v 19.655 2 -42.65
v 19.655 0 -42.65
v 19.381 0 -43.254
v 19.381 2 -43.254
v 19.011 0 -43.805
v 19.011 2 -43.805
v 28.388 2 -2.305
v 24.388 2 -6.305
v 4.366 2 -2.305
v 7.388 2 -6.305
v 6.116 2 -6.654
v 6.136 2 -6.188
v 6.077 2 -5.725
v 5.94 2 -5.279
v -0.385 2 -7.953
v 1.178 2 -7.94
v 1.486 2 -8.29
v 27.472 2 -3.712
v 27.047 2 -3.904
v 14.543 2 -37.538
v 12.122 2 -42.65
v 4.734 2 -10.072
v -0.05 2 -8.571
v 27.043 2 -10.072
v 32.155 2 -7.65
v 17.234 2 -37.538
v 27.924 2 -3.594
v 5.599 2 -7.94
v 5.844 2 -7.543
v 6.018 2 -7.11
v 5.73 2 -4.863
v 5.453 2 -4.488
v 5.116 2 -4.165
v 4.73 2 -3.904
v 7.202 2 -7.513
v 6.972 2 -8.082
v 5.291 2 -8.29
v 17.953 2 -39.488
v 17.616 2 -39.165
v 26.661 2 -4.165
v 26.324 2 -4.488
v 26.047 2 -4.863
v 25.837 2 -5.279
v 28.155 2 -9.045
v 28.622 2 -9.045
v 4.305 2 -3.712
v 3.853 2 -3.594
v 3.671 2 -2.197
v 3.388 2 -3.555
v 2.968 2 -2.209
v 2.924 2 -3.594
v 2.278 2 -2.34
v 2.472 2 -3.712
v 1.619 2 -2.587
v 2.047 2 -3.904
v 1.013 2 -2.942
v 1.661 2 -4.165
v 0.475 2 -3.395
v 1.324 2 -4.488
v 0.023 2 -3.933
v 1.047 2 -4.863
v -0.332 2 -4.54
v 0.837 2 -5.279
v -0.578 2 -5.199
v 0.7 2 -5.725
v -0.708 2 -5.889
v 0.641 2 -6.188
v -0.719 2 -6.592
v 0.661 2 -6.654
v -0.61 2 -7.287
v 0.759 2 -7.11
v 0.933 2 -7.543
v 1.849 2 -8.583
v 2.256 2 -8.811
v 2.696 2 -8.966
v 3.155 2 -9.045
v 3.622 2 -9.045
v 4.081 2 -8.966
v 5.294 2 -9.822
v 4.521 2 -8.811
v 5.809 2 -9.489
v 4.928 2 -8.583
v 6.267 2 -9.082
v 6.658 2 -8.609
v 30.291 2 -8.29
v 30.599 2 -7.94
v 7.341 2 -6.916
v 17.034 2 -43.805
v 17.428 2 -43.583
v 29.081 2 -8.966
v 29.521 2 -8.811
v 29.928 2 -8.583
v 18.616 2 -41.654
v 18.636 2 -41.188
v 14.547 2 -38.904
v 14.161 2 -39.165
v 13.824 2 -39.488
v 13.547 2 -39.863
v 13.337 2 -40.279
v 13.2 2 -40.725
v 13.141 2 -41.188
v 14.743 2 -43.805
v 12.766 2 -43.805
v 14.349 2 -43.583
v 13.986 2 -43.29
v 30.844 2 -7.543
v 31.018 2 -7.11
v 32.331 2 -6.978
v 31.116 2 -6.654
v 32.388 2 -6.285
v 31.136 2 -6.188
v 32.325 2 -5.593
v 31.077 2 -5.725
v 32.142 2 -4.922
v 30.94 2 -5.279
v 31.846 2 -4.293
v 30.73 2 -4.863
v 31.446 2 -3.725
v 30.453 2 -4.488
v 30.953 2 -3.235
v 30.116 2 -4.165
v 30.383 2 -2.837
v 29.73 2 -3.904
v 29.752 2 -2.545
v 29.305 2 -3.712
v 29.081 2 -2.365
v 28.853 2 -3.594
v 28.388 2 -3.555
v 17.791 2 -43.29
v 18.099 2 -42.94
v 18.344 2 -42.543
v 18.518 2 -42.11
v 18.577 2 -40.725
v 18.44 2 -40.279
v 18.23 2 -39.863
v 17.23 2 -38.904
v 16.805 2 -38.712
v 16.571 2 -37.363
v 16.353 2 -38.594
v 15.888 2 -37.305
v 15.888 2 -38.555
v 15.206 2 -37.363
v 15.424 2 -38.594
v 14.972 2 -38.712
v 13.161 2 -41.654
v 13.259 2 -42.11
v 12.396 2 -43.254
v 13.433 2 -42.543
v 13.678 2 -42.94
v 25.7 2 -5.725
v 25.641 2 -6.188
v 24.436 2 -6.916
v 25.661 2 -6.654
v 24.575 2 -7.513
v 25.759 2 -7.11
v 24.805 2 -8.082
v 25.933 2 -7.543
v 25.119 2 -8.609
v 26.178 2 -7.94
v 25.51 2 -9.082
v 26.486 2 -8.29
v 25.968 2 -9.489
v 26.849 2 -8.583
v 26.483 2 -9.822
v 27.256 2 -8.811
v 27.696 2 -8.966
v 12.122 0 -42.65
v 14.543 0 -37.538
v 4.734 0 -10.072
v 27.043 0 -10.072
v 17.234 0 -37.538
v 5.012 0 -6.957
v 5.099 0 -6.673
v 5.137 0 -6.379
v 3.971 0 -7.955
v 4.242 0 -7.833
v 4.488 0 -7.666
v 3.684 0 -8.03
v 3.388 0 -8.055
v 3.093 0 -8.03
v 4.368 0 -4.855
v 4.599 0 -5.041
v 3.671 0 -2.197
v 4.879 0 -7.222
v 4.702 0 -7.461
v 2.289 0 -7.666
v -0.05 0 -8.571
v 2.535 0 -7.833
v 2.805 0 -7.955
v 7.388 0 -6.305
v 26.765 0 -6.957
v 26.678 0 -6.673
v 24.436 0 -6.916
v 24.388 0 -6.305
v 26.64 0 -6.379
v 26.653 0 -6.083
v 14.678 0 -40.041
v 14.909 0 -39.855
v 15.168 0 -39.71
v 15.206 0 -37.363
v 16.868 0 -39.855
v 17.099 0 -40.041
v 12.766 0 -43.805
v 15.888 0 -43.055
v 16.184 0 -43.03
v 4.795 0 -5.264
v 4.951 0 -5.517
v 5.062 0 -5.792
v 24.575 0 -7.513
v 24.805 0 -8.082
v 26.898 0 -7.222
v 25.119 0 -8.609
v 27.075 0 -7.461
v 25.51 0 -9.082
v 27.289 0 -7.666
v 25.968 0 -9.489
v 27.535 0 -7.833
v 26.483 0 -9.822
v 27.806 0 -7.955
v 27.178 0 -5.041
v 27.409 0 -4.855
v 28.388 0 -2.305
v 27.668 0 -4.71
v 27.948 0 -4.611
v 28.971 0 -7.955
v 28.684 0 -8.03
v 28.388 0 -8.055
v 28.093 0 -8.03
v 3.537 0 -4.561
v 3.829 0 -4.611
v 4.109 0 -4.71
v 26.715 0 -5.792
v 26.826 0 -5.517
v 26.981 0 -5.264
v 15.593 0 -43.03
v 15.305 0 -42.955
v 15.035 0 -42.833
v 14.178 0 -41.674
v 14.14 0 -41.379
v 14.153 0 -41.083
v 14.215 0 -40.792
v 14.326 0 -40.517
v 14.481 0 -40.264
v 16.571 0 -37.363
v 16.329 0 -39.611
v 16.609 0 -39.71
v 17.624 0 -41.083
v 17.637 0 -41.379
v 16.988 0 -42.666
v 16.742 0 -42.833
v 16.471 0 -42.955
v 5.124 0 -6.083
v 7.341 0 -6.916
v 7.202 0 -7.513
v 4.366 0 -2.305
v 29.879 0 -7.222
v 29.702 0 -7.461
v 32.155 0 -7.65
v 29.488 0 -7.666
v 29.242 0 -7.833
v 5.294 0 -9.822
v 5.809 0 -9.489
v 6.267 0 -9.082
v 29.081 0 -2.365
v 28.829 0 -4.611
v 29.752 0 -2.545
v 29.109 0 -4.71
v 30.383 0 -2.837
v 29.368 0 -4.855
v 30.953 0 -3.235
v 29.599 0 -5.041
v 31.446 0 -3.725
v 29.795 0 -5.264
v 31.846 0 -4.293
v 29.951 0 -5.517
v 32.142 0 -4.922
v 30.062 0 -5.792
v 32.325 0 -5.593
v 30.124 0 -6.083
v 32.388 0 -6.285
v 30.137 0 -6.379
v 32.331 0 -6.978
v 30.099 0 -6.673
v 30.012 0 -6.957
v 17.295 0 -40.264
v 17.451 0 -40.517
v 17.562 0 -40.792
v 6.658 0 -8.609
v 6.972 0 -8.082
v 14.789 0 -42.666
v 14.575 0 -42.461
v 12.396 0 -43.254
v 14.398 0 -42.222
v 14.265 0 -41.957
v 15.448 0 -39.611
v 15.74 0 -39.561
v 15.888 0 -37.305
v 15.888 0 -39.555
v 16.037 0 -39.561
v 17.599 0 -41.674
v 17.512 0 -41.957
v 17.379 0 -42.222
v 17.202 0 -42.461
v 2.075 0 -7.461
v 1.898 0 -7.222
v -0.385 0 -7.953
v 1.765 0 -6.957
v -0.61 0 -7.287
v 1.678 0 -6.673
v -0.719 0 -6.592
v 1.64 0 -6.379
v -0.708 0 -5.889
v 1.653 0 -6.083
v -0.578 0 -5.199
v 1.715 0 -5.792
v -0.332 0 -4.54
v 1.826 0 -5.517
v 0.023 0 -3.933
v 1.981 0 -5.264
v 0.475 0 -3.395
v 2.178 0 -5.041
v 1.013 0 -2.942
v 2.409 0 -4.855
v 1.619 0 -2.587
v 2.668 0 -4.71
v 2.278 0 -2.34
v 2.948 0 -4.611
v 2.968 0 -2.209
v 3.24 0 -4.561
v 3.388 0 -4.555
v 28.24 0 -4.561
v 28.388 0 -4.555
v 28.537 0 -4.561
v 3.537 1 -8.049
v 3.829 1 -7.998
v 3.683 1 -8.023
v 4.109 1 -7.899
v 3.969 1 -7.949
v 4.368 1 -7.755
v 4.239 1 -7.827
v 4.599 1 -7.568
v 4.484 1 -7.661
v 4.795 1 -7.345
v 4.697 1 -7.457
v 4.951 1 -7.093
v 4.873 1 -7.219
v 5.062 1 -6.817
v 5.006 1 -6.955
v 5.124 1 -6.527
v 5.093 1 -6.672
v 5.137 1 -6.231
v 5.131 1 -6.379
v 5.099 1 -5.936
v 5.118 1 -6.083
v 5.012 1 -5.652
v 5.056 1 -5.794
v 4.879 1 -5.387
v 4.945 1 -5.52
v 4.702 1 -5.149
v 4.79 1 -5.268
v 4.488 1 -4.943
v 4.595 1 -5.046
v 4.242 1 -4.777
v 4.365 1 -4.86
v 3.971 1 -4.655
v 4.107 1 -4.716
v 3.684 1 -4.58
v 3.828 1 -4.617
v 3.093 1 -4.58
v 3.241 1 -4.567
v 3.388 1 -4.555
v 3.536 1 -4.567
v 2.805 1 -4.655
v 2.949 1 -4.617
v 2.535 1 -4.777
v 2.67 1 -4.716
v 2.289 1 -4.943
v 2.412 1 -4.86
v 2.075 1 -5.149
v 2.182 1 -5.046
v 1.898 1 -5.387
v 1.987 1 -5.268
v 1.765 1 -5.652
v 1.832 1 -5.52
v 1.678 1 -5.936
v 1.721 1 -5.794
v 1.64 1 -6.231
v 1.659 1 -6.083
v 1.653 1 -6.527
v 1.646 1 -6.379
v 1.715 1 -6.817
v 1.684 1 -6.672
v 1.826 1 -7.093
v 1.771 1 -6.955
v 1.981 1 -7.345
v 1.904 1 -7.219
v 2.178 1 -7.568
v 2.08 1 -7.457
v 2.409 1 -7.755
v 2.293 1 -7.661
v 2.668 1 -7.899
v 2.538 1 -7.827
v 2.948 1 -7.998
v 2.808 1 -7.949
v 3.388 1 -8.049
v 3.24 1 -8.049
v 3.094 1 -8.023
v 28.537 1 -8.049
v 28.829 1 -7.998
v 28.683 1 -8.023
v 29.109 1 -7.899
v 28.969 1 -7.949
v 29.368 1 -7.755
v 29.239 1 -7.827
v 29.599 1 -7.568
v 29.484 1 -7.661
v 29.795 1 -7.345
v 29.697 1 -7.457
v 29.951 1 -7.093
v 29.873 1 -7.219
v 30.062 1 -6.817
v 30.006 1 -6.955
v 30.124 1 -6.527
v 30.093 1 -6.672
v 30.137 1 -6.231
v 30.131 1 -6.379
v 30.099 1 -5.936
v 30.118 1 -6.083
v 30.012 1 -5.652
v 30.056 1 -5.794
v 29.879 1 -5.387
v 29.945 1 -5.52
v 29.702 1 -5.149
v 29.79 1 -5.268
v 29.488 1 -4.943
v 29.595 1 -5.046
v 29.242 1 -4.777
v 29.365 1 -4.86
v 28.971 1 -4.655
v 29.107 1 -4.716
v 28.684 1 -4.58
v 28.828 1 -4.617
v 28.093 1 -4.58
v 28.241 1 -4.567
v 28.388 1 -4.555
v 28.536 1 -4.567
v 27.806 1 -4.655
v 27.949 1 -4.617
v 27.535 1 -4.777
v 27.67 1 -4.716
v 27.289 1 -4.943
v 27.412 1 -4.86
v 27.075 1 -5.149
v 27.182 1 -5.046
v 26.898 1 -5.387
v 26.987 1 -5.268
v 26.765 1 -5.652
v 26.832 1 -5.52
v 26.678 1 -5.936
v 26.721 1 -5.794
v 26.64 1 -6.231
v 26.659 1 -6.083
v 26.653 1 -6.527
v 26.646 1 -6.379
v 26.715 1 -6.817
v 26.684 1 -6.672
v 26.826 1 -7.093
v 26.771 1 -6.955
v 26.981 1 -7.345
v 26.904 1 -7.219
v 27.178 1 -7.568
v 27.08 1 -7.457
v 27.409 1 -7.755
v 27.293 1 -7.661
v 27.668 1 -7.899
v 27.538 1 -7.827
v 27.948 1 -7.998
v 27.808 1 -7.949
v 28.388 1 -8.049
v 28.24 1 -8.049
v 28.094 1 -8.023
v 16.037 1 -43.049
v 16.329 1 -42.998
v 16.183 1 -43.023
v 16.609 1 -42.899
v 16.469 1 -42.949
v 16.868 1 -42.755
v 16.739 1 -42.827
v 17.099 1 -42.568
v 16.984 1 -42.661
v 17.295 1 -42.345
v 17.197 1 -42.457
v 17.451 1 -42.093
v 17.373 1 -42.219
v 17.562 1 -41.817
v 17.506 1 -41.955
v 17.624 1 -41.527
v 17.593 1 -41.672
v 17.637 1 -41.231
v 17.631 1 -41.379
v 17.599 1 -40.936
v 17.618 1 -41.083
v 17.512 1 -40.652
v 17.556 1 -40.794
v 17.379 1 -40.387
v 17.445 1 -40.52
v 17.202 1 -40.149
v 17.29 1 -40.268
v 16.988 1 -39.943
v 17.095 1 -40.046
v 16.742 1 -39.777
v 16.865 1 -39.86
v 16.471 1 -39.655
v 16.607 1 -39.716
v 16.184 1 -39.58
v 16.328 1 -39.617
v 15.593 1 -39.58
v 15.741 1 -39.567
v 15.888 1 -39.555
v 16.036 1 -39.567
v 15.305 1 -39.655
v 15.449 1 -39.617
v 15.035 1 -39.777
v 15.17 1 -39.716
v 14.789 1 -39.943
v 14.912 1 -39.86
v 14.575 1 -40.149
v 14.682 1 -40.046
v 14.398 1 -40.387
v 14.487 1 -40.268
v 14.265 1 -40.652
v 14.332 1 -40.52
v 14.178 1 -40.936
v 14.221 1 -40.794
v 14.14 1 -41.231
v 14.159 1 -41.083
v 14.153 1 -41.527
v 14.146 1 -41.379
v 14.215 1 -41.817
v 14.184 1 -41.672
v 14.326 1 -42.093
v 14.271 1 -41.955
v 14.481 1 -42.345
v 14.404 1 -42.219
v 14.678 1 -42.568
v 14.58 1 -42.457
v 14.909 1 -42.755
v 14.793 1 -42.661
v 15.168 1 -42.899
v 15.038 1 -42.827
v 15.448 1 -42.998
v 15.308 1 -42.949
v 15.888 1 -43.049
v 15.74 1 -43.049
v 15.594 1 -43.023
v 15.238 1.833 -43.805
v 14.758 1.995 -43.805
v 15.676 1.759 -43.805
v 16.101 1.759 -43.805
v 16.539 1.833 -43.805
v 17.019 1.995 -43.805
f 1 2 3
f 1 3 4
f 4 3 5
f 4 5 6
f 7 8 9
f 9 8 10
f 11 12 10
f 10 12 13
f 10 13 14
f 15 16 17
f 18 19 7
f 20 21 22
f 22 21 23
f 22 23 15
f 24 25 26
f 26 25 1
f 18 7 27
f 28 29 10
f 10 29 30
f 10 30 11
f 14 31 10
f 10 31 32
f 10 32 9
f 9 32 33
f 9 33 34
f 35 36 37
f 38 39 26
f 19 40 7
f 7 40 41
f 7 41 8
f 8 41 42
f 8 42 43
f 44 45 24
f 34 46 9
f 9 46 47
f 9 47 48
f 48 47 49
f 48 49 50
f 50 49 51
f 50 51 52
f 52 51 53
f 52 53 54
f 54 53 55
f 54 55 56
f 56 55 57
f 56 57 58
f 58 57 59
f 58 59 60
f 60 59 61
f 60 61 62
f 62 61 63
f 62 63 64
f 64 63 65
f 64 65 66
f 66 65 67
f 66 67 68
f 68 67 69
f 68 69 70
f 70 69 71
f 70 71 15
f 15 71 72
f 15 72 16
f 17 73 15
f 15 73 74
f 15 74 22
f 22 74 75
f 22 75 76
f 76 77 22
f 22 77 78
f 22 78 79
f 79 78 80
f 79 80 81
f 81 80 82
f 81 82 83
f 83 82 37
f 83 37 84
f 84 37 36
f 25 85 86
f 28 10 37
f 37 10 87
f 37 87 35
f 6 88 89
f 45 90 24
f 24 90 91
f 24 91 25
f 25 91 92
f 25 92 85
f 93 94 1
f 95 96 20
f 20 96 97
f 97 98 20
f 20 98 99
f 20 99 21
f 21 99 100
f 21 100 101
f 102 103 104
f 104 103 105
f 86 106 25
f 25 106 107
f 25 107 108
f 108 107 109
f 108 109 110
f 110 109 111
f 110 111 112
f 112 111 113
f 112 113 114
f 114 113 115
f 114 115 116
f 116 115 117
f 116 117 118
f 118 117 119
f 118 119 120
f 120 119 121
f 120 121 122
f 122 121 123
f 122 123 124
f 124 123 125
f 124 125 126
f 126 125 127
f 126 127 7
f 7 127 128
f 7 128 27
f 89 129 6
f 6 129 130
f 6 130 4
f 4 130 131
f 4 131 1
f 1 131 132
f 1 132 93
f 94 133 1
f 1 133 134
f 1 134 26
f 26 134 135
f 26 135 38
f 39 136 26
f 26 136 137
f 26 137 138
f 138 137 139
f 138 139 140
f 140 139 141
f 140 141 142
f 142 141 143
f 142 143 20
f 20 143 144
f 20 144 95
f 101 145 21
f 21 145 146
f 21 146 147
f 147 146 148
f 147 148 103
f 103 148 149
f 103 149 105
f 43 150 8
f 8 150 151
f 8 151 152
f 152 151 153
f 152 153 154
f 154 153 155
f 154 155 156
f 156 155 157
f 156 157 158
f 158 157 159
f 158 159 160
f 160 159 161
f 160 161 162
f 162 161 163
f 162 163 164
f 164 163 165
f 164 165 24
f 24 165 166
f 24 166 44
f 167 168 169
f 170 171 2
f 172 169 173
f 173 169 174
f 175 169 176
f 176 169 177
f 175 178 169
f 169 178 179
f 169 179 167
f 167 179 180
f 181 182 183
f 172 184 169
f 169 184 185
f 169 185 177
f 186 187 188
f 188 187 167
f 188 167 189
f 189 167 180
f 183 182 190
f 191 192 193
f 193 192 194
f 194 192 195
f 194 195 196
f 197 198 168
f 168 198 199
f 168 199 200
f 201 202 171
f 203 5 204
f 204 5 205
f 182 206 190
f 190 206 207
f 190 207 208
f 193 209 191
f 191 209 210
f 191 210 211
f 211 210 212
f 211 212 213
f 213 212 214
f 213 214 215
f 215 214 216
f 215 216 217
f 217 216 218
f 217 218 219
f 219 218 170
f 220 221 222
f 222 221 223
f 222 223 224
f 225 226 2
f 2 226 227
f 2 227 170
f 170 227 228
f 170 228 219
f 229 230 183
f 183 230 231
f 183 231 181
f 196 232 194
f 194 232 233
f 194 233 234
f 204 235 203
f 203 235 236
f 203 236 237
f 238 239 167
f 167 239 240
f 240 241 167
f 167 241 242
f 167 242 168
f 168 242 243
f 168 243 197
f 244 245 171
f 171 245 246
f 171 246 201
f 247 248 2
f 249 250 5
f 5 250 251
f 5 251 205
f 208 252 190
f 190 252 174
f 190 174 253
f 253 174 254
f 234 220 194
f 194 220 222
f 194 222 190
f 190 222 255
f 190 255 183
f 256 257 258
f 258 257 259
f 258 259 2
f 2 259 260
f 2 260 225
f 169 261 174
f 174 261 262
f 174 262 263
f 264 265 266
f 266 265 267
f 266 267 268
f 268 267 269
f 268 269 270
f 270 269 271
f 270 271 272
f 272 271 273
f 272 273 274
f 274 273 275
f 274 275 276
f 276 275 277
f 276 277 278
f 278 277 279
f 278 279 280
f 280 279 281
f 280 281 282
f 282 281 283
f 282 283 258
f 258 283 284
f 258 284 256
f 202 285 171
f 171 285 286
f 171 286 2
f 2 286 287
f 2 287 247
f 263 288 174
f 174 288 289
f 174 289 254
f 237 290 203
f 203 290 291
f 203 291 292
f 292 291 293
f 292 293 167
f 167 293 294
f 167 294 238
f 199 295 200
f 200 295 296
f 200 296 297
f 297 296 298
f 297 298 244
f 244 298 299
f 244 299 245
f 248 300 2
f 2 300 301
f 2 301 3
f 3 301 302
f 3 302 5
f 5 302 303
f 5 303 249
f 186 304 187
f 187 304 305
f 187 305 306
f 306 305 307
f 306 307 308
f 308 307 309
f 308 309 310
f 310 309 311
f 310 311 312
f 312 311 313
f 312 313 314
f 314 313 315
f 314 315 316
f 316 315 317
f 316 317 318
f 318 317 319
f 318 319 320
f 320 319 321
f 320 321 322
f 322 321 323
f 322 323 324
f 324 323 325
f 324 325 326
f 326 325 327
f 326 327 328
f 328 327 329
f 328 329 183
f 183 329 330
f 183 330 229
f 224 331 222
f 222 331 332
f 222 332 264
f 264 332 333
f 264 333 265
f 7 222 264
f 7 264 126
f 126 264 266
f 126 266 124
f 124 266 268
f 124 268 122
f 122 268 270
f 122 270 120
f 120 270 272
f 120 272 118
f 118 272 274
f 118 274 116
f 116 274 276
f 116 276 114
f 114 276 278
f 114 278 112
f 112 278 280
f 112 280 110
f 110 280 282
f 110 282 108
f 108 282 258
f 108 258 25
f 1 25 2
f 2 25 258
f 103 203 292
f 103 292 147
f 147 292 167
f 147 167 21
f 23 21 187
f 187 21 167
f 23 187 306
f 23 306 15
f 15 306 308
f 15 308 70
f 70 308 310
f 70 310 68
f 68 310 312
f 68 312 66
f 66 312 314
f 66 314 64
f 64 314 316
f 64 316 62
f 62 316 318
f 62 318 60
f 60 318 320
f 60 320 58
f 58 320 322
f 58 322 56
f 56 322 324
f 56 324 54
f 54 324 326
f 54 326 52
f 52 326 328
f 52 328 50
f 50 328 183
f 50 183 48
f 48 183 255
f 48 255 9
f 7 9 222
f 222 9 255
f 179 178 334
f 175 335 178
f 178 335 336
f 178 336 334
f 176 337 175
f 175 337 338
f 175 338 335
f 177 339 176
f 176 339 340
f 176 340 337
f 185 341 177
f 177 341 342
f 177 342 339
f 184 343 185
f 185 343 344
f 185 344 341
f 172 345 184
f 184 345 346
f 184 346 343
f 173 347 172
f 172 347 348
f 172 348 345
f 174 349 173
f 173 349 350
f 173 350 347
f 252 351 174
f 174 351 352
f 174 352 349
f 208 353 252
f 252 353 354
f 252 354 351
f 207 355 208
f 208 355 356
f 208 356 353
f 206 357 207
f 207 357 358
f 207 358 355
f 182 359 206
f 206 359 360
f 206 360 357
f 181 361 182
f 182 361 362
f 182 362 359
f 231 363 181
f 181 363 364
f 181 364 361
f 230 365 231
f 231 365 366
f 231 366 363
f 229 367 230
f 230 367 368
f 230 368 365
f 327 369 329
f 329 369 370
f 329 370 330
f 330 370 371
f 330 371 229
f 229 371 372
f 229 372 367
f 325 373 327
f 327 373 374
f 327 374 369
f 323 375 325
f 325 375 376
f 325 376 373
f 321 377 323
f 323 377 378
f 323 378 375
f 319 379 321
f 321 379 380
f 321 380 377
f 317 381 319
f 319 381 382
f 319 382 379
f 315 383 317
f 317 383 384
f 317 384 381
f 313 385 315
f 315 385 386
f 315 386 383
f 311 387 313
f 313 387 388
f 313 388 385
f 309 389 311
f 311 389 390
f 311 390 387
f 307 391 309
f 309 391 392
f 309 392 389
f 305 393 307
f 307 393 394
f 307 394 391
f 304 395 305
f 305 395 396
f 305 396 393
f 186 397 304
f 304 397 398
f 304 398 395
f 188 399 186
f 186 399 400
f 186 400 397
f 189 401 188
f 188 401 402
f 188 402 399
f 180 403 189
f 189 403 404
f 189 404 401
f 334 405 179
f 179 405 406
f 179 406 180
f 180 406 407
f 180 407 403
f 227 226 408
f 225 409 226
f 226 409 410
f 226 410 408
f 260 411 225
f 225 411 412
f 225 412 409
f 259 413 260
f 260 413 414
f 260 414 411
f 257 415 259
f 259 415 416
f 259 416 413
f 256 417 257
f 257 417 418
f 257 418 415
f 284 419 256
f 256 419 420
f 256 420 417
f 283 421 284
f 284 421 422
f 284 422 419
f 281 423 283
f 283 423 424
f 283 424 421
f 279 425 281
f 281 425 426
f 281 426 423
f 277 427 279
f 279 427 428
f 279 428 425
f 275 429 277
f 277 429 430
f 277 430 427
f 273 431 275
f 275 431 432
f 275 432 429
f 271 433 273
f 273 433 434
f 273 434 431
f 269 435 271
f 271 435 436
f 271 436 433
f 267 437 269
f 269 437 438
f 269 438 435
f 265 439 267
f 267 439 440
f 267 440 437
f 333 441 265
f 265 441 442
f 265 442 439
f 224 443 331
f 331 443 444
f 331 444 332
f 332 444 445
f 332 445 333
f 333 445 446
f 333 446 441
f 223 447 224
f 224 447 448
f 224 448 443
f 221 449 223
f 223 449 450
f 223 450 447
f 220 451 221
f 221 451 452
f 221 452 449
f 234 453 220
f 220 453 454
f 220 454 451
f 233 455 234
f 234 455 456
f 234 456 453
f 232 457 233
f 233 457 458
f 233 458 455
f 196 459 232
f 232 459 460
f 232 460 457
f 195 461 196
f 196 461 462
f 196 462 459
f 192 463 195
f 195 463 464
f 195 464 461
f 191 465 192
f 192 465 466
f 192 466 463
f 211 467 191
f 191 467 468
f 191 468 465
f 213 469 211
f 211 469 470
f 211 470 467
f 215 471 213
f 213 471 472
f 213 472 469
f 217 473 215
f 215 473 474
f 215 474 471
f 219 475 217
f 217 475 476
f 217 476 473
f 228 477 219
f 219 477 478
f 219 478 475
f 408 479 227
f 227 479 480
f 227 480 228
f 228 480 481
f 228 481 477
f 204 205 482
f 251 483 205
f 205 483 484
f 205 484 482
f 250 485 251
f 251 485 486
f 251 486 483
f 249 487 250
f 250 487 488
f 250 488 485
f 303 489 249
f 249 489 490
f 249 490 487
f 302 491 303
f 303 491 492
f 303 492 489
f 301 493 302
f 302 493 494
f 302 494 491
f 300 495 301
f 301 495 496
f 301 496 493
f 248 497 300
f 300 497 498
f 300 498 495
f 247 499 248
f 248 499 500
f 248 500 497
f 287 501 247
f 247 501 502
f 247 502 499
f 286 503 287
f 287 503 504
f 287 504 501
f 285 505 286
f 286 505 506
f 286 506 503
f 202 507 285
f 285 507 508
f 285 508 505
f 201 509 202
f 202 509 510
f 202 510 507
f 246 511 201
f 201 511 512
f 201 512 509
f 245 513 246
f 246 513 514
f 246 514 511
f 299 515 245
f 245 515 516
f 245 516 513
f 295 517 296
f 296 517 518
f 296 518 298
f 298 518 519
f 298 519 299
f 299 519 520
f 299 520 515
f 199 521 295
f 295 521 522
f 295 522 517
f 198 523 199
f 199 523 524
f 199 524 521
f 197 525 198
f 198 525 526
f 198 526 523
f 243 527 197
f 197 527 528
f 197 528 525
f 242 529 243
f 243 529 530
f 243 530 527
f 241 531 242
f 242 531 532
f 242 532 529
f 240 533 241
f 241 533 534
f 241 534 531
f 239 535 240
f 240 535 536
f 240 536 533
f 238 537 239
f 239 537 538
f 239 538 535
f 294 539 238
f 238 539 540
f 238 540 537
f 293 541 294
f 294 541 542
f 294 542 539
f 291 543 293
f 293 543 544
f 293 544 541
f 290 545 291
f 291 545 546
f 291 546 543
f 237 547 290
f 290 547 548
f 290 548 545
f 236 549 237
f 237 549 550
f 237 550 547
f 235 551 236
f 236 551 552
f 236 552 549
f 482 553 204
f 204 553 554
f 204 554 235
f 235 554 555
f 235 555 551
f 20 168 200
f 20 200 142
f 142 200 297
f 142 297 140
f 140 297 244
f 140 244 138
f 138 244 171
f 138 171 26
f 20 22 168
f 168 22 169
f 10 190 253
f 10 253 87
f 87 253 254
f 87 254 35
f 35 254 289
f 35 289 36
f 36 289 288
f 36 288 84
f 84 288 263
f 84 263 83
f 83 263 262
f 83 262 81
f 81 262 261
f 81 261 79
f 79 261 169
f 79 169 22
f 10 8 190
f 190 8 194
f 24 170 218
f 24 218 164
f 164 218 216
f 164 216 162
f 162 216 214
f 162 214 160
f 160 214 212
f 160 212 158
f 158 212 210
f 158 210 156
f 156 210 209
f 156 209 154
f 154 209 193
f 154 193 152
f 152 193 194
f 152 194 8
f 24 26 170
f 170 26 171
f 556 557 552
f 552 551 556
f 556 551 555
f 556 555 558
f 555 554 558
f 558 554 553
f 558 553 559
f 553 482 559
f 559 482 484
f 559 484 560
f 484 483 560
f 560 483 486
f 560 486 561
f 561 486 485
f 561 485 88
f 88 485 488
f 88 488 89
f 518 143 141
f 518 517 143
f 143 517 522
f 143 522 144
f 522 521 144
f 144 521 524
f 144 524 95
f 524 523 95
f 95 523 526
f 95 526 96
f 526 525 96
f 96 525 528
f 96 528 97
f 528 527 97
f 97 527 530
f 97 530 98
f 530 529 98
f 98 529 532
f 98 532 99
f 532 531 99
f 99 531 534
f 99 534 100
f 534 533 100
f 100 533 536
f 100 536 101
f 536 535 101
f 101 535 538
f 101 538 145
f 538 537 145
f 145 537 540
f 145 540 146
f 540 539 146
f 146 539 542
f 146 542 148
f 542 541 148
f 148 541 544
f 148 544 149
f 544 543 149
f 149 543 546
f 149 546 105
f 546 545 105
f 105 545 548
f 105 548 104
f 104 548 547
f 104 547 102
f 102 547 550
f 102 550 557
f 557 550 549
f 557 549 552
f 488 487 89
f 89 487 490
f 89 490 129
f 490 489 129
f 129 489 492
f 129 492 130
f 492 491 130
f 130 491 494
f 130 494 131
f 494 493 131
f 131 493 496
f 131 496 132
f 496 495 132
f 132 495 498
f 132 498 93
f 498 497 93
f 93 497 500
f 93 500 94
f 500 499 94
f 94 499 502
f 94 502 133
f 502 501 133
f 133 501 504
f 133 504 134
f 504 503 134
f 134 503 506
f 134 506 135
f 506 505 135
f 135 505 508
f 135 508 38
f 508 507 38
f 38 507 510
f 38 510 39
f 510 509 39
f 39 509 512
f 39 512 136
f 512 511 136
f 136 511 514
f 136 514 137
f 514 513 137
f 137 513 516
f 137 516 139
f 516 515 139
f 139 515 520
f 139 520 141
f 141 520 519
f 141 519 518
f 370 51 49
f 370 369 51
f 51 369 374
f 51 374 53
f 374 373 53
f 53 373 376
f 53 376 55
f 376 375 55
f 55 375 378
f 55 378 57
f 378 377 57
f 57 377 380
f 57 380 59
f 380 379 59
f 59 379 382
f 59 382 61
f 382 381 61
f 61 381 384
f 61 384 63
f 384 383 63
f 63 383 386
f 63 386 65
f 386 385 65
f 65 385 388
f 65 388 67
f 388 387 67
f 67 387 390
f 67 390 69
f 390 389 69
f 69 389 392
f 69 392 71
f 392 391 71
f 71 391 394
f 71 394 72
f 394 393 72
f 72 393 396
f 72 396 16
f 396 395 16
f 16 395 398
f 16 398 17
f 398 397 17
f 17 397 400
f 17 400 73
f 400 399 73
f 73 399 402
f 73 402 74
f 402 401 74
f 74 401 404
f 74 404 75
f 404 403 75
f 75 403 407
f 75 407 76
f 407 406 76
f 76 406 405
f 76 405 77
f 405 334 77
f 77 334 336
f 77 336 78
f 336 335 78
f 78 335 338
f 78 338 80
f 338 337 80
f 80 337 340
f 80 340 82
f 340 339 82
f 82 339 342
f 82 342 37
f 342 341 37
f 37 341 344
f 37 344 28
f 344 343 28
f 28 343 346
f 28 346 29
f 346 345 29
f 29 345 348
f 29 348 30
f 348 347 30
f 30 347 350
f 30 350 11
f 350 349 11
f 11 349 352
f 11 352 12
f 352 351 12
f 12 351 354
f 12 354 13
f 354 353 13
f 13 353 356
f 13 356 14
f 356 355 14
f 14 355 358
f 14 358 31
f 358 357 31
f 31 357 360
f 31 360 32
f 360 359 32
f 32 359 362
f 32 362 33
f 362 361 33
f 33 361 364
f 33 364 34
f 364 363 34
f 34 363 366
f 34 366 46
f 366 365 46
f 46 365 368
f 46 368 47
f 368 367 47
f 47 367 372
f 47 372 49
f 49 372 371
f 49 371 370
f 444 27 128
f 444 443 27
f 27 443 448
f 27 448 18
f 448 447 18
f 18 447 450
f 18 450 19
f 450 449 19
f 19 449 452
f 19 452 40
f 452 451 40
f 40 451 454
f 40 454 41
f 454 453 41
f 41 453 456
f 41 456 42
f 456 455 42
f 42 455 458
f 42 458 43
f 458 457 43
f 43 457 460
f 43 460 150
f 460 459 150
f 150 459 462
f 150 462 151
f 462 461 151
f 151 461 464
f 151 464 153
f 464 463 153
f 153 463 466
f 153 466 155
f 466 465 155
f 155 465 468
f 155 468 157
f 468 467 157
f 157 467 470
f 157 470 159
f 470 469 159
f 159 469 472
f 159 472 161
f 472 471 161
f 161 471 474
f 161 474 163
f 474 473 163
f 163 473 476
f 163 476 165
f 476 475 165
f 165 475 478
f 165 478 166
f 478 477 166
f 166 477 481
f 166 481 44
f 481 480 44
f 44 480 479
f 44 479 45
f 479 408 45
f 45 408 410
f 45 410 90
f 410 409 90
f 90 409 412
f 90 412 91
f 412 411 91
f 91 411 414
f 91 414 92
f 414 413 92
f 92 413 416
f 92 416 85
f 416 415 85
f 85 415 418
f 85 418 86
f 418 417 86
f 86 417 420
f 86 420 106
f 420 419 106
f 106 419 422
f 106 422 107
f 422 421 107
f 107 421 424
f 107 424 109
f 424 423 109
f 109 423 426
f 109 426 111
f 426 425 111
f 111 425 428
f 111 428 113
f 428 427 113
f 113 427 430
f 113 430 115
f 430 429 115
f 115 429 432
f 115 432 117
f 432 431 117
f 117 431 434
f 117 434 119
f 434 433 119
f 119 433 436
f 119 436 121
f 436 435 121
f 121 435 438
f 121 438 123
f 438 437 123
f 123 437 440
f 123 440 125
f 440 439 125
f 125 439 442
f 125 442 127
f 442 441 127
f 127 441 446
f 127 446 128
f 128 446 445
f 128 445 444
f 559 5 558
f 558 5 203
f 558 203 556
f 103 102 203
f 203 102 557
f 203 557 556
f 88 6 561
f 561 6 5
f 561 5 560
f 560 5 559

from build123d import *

# Parameters (mm, degrees)
IZIM2_R                     = 1.75
Y_KSEKLIK_EKSTR_ZYON1_DEPTH = 2
PAH1_SIZE                   = 1
IZIM3_W                     = 10
IZIM3_H                     = 1.5
KES_EKSTR_ZYON1_DEPTH       = 10


with BuildPart() as part:
    # Çizim2 → Yükseklik-Ekstrüzyon1 (new body)
    with BuildSketch(Plane(origin=(0, 0, 0), x_dir=(1, 0, 0), z_dir=(0, 1, 0))):
        with BuildLine():
            Line((19.655461919, 42.650157531), (32.155461919, 7.650157531))
            ThreePointArc((32.155461919, 7.650157531), (31.658156515, 4.000618196), (28.388494273, 2.304811943))
            Line((28.388494273, 2.304811943), (4.365814172, 2.304811943))
            ThreePointArc((4.365814172, 2.304811943), (0.022651908, 3.932838217), (-0.04976512, 8.570540641))
            Line((-0.04976512, 8.570540641), (12.121526627, 42.650157531))
            ThreePointArc((12.121526627, 42.650157531), (15.888494273, 45.304811943), (19.655461919, 42.650157531))
        make_face()
        with Locations(Location((3.388494273, 6.304811943, 0), (0, 0, 270))):
            Circle(IZIM2_R, mode=Mode.SUBTRACT)
        with Locations(Location((28.388494273, 6.304811943, 0), (0, 0, 270))):
            Circle(IZIM2_R, mode=Mode.SUBTRACT)
        with Locations(Location((15.888494273, 41.304811943, 0), (0, 0, 270))):
            Circle(IZIM2_R, mode=Mode.SUBTRACT)
        with BuildLine():
            Line((14.543148685, 37.537844297), (4.733839861, 10.07177959))
            ThreePointArc((4.733839861, 10.07177959), (6.658156515, 8.60900569), (7.388494273, 6.304811943))
            Line((7.388494273, 6.304811943), (24.388494273, 6.304811943))
            ThreePointArc((24.388494273, 6.304811943), (25.118832031, 8.60900569), (27.043148685, 10.07177959))
            Line((27.043148685, 10.07177959), (17.233839861, 37.537844297))
            ThreePointArc((17.233839861, 37.537844297), (15.888494273, 37.304811943), (14.543148685, 37.537844297))
        make_face(mode=Mode.SUBTRACT)
    extrude(amount=Y_KSEKLIK_EKSTR_ZYON1_DEPTH)

    # Pah1
    pah1_edges = [part.edges().sort_by_distance(p)[0] for p in [
        (3.388494273, 2, -8.054811943),
        (28.388494273, 2, -8.054811943),
        (15.888494273, 2, -43.054811943),
    ]]
    chamfer(pah1_edges, length=PAH1_SIZE)

    # Çizim3 → Kes-Ekstrüzyon1 (cut)
    with BuildSketch(Plane(origin=(0, 2, 0), x_dir=(1, 0, 0), z_dir=(0, 1, 0))):
        with Locations((15.888494273, 44.554811943)):
            Rectangle(IZIM3_W, IZIM3_H)
    extrude(amount=-KES_EKSTR_ZYON1_DEPTH, mode=Mode.SUBTRACT)


solid = part.part
